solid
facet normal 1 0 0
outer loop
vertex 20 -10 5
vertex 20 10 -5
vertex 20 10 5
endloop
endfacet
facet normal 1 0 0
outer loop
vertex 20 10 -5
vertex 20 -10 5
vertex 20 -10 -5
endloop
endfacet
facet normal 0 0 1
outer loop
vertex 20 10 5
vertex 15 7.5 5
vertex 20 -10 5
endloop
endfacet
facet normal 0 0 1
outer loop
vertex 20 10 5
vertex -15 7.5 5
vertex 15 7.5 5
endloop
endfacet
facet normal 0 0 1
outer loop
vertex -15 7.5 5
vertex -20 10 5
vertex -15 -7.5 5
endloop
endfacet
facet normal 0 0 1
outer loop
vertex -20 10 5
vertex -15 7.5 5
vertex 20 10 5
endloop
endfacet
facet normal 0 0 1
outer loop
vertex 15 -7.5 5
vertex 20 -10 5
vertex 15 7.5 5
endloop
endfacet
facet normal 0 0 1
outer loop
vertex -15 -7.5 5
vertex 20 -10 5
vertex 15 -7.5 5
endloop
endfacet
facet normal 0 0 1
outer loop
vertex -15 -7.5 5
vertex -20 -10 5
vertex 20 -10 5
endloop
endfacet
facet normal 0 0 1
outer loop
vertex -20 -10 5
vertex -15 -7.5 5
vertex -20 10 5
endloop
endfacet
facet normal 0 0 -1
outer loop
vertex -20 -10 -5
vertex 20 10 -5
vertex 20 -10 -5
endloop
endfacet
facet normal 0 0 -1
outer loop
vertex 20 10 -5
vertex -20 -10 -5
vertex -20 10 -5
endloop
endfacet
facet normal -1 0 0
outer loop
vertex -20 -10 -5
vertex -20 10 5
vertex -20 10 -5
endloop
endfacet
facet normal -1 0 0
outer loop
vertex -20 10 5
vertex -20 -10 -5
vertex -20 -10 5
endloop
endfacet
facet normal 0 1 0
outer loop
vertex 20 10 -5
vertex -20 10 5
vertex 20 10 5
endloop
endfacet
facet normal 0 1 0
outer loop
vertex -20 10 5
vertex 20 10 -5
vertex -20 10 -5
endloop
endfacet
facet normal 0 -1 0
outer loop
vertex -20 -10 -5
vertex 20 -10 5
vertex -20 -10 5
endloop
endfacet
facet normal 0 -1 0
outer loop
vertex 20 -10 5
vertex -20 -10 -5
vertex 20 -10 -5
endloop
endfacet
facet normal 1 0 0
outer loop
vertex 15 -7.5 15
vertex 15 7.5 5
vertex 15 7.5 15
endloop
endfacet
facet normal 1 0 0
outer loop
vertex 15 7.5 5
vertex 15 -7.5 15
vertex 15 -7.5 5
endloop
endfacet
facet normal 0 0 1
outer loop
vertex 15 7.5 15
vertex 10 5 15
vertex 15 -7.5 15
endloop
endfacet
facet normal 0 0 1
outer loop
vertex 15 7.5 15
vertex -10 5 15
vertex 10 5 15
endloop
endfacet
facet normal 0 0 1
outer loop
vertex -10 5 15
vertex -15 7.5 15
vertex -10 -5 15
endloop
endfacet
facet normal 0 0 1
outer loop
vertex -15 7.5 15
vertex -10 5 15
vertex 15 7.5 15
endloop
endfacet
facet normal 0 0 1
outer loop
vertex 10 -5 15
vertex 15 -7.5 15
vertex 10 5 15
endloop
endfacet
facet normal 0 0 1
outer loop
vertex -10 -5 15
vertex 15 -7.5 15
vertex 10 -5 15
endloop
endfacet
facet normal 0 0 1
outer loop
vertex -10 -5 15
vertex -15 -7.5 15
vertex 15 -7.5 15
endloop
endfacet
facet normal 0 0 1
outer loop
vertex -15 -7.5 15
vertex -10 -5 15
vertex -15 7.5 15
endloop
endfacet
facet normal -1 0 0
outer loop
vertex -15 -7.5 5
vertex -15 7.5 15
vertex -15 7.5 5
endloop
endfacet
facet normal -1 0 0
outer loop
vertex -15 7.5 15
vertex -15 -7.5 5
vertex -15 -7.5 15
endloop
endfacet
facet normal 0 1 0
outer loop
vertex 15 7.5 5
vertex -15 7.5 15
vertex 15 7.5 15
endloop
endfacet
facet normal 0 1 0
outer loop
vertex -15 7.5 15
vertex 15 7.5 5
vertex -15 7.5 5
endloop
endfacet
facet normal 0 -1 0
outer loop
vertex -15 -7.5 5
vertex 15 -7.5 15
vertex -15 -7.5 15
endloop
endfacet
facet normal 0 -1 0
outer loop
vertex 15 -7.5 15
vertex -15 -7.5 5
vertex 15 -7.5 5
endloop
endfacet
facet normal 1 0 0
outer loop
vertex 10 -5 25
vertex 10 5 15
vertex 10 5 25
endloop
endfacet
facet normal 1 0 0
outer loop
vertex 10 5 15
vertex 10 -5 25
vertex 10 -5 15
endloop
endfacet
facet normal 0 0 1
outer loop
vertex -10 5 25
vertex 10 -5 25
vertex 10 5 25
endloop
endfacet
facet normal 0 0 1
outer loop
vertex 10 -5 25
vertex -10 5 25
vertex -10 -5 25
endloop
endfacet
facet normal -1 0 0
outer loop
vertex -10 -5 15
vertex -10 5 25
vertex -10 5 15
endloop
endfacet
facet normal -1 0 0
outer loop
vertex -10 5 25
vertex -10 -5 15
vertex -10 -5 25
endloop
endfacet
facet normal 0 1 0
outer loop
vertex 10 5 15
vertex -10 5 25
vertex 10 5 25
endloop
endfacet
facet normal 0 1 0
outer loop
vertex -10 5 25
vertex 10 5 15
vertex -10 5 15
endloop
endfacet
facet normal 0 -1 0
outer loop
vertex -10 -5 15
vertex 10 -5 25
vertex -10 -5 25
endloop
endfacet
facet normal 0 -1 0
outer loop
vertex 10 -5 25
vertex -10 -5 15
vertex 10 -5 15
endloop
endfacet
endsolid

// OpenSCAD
// Dimensions for the cuboids
large_cuboid_size = [40, 20, 10];  // Length, Width, Height
medium_cuboid_size = [30, 15, 10];
small_cuboid_size = [20, 10, 10];

// Positions for the cuboids based on the layer structure
large_cuboid_position = [0, 0, 0];  // Base layer
medium_cuboid_position = [0, 0, large_cuboid_size[2]];  // Above the large cuboid
small_cuboid_position = [0, 0, large_cuboid_size[2] + medium_cuboid_size[2]];  // Above the medium cuboid

// Large cuboid (base)
translate(large_cuboid_position)
    cube(large_cuboid_size, center = true);

// Medium cuboid (intermediate layer)
translate(medium_cuboid_position)
    cube(medium_cuboid_size, center = true);

// Small cuboid (topmost layer)
translate(small_cuboid_position)
    cube(small_cuboid_size, center = true);
